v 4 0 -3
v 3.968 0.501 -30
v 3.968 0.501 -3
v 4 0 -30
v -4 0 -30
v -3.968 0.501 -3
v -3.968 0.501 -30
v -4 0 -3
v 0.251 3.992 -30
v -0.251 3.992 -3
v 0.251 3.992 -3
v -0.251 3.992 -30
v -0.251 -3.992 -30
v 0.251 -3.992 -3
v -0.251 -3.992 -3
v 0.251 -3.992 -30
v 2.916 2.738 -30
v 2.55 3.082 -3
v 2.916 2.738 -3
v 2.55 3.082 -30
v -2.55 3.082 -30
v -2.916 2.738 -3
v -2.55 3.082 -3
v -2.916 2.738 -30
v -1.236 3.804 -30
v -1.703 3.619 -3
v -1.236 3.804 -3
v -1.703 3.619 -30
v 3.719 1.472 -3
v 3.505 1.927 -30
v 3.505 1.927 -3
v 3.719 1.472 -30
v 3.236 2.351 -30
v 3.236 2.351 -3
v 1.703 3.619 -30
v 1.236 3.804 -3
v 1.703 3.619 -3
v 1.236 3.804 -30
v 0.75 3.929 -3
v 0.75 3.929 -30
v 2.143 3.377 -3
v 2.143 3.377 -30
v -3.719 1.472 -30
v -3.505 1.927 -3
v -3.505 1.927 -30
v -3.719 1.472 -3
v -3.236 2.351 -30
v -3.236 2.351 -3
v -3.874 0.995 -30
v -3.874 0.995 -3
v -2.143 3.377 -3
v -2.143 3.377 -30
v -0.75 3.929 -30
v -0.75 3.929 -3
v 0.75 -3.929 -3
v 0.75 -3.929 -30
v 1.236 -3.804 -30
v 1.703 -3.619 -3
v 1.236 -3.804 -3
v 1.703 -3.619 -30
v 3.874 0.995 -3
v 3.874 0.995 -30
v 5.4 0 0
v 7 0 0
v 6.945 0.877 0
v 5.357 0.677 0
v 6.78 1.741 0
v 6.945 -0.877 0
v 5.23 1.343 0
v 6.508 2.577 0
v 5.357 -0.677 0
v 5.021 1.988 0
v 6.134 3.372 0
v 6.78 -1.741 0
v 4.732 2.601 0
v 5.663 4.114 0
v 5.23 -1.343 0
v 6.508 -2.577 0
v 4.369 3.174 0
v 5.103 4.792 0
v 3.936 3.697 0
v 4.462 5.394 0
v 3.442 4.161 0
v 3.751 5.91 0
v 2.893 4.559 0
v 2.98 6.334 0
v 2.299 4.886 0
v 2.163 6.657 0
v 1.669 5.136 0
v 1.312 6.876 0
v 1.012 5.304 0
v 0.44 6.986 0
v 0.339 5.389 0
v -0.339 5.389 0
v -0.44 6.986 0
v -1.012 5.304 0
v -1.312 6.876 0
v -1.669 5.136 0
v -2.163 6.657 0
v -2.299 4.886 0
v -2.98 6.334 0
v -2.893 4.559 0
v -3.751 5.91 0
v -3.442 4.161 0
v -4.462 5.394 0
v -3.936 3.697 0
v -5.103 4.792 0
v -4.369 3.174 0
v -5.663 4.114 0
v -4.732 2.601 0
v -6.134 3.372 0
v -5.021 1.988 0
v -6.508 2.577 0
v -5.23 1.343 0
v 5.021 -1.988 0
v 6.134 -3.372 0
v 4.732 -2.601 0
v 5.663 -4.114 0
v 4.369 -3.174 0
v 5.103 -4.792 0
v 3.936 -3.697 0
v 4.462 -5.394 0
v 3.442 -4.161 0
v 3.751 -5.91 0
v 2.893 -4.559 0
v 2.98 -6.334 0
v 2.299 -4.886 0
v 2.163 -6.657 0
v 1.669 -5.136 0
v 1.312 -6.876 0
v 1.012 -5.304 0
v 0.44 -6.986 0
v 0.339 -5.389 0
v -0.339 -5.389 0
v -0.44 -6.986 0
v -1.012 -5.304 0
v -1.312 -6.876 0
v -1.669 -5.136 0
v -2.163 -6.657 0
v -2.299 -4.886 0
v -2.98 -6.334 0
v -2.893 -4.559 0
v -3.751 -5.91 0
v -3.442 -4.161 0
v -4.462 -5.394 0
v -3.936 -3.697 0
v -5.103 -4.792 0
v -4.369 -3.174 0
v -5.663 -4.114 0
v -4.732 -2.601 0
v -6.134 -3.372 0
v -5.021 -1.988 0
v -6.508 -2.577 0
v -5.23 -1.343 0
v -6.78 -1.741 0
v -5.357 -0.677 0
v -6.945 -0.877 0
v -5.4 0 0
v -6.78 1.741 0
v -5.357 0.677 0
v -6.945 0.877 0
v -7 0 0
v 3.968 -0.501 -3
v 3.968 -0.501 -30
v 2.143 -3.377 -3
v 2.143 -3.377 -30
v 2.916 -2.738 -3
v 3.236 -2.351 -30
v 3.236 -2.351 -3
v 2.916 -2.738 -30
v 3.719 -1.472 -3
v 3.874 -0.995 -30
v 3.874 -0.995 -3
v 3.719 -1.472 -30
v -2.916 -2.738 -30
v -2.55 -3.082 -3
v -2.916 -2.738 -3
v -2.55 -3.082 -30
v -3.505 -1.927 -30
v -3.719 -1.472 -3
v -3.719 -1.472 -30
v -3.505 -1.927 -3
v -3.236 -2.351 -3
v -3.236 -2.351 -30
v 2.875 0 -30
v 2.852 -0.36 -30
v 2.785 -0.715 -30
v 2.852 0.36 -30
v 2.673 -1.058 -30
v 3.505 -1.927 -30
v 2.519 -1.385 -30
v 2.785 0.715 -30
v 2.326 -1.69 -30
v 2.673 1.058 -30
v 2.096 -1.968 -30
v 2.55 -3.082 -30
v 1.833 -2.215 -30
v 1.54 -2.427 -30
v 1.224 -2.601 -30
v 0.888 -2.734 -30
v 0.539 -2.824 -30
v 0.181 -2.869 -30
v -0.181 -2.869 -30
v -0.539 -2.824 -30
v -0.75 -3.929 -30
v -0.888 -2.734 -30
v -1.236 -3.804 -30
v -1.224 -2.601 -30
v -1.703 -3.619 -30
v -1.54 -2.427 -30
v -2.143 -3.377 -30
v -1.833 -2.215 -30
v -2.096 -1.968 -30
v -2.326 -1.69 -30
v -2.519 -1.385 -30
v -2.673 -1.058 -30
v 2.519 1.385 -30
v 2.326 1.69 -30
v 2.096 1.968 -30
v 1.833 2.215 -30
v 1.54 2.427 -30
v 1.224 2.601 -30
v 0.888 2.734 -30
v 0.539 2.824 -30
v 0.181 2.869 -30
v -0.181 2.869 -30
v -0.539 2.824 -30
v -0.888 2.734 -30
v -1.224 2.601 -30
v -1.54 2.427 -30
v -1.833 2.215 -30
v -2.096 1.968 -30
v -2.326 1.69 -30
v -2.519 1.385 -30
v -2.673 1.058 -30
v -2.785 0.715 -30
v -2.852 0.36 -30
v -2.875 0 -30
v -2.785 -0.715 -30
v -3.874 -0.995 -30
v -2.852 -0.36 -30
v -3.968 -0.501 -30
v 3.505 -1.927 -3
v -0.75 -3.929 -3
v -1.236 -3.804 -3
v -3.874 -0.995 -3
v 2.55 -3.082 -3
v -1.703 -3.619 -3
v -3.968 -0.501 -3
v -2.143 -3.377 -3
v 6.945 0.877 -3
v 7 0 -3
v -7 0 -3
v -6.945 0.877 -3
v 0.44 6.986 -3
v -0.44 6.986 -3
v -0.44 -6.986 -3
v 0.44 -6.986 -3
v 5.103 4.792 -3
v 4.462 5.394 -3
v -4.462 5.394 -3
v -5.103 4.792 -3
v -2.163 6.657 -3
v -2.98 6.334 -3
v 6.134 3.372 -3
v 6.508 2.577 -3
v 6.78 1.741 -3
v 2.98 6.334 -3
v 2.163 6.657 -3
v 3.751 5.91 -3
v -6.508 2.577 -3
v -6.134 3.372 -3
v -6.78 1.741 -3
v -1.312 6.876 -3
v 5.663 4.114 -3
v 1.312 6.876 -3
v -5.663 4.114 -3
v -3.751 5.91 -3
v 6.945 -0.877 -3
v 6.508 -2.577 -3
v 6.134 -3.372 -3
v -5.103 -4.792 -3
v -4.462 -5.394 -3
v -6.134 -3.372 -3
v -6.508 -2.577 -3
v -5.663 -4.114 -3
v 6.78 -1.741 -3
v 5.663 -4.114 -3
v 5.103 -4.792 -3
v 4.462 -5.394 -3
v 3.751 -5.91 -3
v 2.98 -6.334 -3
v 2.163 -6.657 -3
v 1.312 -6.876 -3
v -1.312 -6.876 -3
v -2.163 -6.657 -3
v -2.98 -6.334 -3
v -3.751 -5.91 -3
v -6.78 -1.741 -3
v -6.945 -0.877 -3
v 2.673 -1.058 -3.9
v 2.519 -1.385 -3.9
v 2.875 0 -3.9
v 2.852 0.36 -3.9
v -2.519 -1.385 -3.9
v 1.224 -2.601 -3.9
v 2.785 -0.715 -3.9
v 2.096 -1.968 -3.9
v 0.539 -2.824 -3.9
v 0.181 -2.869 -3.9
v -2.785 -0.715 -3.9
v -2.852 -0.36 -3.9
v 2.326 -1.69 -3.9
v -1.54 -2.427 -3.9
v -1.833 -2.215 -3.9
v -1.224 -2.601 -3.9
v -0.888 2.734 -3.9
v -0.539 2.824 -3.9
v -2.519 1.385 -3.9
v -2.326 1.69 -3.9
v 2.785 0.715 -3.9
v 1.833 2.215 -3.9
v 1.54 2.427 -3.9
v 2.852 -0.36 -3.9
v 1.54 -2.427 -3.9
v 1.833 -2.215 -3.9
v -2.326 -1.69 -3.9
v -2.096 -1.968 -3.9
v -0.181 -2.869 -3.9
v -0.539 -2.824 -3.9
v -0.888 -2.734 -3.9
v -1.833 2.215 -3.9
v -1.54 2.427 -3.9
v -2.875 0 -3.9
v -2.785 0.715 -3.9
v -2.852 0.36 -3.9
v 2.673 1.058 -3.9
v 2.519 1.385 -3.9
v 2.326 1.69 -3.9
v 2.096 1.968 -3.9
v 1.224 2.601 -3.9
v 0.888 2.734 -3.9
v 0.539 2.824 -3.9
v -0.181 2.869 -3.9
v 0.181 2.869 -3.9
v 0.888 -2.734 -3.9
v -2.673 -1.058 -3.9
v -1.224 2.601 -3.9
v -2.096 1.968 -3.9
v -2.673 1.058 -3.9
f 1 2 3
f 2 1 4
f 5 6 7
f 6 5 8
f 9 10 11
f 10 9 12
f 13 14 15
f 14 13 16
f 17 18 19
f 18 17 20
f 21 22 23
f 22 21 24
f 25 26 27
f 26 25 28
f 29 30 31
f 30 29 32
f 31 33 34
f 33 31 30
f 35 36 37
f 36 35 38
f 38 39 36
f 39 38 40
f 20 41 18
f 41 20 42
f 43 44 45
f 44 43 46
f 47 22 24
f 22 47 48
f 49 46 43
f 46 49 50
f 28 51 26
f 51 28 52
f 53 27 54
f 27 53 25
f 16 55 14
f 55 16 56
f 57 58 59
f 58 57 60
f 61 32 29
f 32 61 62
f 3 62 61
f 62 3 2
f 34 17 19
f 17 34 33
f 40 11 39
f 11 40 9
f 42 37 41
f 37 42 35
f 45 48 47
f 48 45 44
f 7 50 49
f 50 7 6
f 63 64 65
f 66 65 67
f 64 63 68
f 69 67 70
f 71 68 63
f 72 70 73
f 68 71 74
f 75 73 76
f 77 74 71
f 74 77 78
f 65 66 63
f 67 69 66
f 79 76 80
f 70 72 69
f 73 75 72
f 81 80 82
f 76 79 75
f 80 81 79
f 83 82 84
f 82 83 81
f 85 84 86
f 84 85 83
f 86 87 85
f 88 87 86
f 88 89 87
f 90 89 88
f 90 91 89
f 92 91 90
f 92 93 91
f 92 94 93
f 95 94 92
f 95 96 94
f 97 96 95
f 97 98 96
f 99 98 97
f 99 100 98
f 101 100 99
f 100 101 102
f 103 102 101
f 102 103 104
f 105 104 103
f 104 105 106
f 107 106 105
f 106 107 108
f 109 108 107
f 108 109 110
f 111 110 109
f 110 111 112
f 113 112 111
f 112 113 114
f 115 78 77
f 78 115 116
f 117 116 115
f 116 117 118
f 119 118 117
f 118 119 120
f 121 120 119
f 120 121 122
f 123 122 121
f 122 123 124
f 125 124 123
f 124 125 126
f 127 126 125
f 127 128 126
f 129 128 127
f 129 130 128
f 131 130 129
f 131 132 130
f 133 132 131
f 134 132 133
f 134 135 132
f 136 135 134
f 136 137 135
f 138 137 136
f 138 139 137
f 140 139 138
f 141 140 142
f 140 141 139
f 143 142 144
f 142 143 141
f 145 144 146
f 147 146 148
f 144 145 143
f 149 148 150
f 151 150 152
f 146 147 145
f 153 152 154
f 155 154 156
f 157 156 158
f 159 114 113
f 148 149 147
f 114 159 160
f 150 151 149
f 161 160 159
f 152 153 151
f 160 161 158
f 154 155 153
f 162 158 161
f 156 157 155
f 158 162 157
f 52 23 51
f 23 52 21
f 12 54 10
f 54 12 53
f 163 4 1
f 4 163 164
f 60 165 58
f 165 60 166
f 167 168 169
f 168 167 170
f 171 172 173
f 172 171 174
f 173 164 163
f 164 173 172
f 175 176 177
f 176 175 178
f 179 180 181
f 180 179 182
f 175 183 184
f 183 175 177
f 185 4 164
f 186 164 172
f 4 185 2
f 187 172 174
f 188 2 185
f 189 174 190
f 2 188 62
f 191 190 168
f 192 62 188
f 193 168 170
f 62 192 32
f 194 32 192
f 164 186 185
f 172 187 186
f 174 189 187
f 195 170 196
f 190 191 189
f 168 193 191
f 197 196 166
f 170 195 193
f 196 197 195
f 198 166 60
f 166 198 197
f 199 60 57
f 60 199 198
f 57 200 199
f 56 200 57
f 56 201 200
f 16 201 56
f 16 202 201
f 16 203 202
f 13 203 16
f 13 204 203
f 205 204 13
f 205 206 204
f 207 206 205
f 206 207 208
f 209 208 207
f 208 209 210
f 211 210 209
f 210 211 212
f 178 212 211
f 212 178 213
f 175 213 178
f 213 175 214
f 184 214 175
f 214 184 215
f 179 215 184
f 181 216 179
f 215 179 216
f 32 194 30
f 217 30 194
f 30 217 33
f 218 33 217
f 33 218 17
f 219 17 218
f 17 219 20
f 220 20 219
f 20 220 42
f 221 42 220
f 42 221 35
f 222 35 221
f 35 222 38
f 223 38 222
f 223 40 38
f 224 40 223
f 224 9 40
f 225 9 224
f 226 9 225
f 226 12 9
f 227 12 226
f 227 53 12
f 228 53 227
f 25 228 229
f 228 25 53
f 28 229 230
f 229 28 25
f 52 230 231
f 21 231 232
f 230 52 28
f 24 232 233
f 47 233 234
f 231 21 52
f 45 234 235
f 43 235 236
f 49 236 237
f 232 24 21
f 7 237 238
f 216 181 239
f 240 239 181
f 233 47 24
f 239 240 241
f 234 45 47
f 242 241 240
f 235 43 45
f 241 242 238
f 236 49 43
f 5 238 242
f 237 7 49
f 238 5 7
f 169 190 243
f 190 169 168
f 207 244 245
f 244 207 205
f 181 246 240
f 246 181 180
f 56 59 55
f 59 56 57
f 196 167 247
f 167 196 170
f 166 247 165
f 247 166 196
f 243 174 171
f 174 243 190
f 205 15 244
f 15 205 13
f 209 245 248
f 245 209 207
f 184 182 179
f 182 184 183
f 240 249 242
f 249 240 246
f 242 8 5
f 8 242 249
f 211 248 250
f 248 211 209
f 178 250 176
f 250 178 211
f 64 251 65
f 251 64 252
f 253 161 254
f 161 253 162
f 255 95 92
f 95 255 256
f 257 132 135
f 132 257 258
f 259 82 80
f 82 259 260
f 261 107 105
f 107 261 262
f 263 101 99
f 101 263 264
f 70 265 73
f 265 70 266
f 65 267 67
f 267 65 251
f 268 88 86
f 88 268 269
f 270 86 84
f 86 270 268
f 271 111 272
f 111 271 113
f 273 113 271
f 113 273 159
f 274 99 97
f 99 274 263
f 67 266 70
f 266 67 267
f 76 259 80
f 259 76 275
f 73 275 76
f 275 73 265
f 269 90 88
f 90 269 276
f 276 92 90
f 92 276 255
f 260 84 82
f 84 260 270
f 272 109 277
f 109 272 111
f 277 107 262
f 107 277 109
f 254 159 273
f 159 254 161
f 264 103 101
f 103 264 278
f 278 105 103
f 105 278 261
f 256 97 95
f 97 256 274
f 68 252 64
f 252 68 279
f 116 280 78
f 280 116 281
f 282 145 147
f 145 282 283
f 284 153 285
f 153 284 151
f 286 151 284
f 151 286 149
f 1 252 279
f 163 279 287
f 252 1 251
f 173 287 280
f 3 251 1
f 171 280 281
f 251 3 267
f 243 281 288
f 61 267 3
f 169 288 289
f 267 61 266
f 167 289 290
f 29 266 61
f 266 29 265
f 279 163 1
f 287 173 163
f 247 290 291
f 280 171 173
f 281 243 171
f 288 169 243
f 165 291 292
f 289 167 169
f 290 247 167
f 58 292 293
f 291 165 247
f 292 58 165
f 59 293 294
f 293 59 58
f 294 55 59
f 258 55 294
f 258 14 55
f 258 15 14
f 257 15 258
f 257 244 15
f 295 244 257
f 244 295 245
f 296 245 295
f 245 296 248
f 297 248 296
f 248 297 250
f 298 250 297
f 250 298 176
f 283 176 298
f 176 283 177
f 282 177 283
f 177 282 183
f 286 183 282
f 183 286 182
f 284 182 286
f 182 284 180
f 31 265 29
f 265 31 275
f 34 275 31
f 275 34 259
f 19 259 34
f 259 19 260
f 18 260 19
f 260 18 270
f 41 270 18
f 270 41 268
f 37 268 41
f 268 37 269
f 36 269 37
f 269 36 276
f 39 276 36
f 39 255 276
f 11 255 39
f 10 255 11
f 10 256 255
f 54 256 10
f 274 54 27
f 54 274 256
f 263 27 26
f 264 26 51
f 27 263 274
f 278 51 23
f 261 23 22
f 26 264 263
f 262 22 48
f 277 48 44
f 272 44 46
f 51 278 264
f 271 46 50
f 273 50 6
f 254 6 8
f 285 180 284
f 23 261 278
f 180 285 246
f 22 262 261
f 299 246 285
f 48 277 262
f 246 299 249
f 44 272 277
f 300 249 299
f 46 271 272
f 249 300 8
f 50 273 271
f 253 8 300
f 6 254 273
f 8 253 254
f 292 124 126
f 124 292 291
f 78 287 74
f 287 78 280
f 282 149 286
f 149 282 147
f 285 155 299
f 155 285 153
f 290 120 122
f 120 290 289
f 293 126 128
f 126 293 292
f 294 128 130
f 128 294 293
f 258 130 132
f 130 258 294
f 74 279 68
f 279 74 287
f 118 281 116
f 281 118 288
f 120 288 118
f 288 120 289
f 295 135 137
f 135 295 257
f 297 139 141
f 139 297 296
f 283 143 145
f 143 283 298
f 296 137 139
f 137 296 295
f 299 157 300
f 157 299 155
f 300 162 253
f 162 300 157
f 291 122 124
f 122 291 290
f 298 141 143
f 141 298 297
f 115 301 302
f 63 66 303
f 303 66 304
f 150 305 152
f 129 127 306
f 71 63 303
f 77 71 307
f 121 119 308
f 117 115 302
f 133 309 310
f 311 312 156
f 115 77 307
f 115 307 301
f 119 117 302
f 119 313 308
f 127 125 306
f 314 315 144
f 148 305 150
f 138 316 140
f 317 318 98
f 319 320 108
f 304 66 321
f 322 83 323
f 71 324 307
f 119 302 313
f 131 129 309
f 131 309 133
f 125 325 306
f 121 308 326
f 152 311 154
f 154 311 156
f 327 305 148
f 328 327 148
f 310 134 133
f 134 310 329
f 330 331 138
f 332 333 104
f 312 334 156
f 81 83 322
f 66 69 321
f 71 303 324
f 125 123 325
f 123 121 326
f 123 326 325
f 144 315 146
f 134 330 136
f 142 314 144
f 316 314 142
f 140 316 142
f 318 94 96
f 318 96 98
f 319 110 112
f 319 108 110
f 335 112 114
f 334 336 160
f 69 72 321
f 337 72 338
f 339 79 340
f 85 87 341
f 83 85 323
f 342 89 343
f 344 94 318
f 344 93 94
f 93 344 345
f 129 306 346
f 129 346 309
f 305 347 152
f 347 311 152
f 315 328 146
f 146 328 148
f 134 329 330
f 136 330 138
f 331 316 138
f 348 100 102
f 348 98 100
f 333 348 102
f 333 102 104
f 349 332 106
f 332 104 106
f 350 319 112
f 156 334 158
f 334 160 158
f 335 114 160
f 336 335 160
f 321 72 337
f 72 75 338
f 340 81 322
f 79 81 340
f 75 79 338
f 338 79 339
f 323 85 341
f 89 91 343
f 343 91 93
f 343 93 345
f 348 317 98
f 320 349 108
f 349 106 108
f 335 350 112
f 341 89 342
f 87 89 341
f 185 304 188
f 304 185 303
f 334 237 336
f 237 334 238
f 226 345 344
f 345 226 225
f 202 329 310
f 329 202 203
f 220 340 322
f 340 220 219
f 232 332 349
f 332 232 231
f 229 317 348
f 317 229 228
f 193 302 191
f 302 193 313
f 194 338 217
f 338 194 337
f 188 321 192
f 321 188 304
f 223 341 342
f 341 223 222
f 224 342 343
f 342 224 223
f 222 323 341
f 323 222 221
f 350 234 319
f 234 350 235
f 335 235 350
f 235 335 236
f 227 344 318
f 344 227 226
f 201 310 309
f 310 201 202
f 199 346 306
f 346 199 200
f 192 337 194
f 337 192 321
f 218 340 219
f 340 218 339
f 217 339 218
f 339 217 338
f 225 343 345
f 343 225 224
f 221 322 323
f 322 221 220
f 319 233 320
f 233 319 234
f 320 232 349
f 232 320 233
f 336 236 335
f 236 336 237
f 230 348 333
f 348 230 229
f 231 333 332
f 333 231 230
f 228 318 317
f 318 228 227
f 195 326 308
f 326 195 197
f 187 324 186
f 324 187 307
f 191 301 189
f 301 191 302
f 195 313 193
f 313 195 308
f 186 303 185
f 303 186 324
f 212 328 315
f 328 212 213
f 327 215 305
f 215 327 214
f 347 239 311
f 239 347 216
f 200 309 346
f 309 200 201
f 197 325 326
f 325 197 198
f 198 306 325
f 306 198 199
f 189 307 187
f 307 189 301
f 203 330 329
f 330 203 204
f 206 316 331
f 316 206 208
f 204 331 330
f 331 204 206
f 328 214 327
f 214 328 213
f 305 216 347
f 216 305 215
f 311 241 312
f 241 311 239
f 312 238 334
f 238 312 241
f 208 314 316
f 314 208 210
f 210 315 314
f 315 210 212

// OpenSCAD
$fn = 50;


difference() {
	union() {
		translate(v = [0, 0, -30.0000000000]) {
			cylinder(h = 30, r = 4.0000000000);
		}
		translate(v = [0, 0, -3.0000000000]) {
			cylinder(h = 3, r = 7.0000000000);
		}
	}
	union() {
		translate(v = [0, 0, 0]) {
			rotate(a = [0, 0, 0]) {
				difference() {
					union() {
						#translate(v = [0, 0, -30.0000000000]) {
							cylinder(h = 30, r = 2.6000000000);
						}
						#translate(v = [0, 0, -3.9000000000]) {
							cylinder(h = 3.9000000000, r = 4.0000000000, r1 = 2.8750000000, r2 = 5.4000000000);
						}
						#translate(v = [0, 0, -30.0000000000]) {
							cylinder(h = 30, r = 2.8750000000);
						}
						#translate(v = [0, 0, -30.0000000000]) {
							cylinder(h = 30, r = 2.6000000000);
						}
					}
					union();
				}
			}
		}
	}
}
